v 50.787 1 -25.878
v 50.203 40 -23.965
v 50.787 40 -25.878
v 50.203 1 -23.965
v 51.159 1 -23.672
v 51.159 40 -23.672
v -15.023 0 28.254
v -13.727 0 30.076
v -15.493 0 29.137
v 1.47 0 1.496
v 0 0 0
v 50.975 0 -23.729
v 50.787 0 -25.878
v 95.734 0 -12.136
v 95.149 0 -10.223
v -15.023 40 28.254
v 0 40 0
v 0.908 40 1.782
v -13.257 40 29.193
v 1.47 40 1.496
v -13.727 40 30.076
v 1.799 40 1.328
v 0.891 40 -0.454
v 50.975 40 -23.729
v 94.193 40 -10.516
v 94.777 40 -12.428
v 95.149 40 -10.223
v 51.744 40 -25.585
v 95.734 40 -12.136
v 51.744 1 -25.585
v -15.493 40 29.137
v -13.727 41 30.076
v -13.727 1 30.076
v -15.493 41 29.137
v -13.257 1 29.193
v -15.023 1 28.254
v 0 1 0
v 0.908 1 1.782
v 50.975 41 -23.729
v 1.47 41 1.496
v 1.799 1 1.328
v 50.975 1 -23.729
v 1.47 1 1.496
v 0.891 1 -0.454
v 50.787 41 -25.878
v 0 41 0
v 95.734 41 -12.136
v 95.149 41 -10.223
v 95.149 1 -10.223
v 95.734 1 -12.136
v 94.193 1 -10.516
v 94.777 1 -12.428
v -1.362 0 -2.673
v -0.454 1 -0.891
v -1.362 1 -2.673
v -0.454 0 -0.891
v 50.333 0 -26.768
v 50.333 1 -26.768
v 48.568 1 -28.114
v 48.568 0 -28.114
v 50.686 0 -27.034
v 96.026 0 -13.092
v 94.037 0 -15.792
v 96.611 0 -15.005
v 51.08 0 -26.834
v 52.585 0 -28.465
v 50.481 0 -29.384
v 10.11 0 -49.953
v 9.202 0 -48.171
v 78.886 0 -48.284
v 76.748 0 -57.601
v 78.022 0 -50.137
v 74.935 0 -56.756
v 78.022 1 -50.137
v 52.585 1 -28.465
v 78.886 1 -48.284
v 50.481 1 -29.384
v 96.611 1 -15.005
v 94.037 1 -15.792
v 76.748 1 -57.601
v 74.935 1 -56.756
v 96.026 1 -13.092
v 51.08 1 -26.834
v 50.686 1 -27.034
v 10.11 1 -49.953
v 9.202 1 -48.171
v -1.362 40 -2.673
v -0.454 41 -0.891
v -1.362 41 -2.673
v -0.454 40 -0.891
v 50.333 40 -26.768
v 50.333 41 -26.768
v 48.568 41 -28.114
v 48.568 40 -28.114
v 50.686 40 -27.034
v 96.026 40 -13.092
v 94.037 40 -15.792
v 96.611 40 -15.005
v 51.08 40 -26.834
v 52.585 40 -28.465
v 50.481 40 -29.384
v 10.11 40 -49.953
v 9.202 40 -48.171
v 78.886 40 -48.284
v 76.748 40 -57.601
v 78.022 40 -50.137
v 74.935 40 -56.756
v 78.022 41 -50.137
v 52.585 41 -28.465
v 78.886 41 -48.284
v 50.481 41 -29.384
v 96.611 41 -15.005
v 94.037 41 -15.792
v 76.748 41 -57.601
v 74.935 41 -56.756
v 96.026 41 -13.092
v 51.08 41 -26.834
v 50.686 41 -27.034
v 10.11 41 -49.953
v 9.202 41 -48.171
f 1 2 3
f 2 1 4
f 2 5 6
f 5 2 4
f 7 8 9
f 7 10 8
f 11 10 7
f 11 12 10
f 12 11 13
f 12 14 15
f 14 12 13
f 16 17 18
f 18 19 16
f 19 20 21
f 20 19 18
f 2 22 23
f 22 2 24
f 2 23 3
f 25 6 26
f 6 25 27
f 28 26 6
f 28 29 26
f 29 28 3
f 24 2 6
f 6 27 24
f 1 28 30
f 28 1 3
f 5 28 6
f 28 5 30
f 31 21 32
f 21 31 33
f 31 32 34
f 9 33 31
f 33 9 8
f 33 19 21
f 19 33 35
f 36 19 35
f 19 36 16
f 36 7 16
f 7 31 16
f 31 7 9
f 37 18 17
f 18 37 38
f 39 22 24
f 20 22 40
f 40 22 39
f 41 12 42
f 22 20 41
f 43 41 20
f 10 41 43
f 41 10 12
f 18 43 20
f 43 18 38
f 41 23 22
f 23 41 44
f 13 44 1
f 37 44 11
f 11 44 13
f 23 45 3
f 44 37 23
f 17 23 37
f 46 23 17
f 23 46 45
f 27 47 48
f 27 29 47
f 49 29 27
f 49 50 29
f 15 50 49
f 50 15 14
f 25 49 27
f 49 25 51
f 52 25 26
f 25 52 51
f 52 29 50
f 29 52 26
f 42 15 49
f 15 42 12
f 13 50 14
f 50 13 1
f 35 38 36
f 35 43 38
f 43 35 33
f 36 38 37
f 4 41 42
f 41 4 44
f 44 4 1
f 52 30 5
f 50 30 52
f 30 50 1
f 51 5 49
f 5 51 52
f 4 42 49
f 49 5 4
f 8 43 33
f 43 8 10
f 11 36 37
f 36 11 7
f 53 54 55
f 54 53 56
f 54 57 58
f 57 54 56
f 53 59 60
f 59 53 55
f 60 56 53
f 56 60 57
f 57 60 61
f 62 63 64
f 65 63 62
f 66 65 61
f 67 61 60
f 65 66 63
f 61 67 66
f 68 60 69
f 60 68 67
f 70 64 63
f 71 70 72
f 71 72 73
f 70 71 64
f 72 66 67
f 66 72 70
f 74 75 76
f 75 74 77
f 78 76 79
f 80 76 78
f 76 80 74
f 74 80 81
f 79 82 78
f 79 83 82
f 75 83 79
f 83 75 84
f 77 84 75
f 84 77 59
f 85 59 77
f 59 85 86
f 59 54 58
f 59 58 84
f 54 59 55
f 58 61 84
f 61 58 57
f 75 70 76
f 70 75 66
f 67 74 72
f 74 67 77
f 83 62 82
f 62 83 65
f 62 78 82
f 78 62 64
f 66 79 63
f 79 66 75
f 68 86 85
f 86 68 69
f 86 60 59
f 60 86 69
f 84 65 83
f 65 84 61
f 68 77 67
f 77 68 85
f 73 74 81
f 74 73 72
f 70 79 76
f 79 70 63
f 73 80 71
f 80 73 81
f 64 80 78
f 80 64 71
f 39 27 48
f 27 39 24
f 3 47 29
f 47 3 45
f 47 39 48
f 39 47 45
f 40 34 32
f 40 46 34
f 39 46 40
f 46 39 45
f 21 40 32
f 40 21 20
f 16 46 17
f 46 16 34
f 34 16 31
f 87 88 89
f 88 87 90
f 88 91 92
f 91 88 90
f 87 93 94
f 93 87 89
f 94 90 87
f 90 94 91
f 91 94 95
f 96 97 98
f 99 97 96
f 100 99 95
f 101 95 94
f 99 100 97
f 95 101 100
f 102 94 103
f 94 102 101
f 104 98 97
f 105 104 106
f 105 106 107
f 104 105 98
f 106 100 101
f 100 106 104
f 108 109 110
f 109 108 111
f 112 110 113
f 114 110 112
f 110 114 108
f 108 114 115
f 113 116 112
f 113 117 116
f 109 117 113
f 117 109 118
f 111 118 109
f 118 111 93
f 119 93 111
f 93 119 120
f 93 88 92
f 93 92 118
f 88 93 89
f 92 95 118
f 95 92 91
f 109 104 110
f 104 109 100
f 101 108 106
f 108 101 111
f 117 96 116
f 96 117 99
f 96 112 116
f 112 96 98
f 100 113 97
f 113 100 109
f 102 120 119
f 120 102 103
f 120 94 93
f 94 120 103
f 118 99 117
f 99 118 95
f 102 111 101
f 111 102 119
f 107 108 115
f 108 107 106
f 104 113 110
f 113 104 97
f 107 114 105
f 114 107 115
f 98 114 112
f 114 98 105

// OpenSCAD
angle_body_head=145;
angle_body_rest=136;

//angle_body_floor=27;
angle_body_floor=27;

length_head=33;
length_body=57;
length_rest=47;

thickness_wood=1;
thickness_stretcher=1;
height_wood=2;

space_base=1;
common_angle_base=10;

chair_width=40;

module rotate_about(v,a) {
translate(v) rotate(a) translate(-v) children(0);
}

module rotate_about_debug(v,a) {
    translate(-v) children(0);
}

module side() {
    //feet
    translate([length_body, 0, 0]){
        rotate(a=[0,-(180-angle_body_rest),0]) {
            cube([length_rest,thickness_wood,height_wood]);
        }
    }

    //body
    cube([length_body,thickness_wood,height_wood]);

    //head
    rotate(a=[0,180-angle_body_head,0]) {
        translate([-length_head, 0,0]){
            cube([length_head,thickness_wood,height_wood]);
        }
    }
}



module stretchers() {
    

    
//feet-body stretcher
translate([length_body, 
    0,
    0]){
    rotate(a=[0,-(180-angle_body_rest),0]) {
        cube([thickness_stretcher,chair_width,height_wood]);
    }
}

//head stretcher
rotate(a=[0,180-angle_body_head,0]) {
    translate([-length_head, 0,0]){
        cube([thickness_stretcher,chair_width,height_wood]);
    }
}

//head-body stretcher

    cube([thickness_stretcher,chair_width,height_wood]);


//feet stretcher
translate([length_body + 
    cos(180-angle_body_rest)*(length_rest -thickness_stretcher)
    , 
    0,
    +sin(180-angle_body_rest)*(length_rest -thickness_stretcher)
    ]){
    rotate(a=[0,-(180-angle_body_rest),0]) {
        cube([thickness_stretcher,chair_width,height_wood]);
    }
}
}




module base() {
    
module feet_base() {
    translate([
    length_body+cos(-90+angle_body_rest)*(height_wood+space_base),
    0,
    -sin(-90-angle_body_rest)*(height_wood+space_base)
    ]){
        rotate(a=[0,-(180-angle_body_rest),0]) {
            cube([length_rest,thickness_wood,height_wood]);
        }
    }
}
    
//body renfort
translate([0, 0, -height_wood-space_base]){
        cube([length_body,thickness_wood,height_wood]);
}

//body support
translate([length_body-sin(common_angle_base)*height_wood,
    0,
    -cos(common_angle_base)*height_wood-space_base
]){
    rotate(a=[0,common_angle_base,0]) {
        cube([length_rest-10,thickness_wood,height_wood]);
    }
}

//feet renfort
feet_base();

//feet support
rotate_about([
    length_body-cos(-90-angle_body_rest)*space_base,
    0,
    -sin(-90-angle_body_rest)*space_base], 
    [0,-common_angle_base,0]) {
    translate([
        length_body+
            cos(angle_body_rest-90)*(height_wood+space_base)
            -sin(angle_body_rest-90)*(length_rest),
        0,
        - sin(angle_body_rest-90)*(height_wood+space_base)
            +sin(-(180-angle_body_rest))*length_rest
    ]){
        rotate(a=[0,-(180-angle_body_rest),0]) {
            cube([length_rest,thickness_wood,height_wood]);
        }
    }
}

//feet front
rotate_about([
    length_body+cos(180-angle_body_rest)*length_rest
        +sin(180-angle_body_rest)*(height_wood+space_base),
    0,
    sin(180-angle_body_rest)*length_rest
        -cos(180-angle_body_rest)*(height_wood+space_base)], 
    [0,-48,0]) {
    feet_base();
}





}

rotate(a=[0,angle_body_floor,0]) {
base();
stretchers();

side();


translate([0,chair_width,0]) {
    base();
    side();
}
}
